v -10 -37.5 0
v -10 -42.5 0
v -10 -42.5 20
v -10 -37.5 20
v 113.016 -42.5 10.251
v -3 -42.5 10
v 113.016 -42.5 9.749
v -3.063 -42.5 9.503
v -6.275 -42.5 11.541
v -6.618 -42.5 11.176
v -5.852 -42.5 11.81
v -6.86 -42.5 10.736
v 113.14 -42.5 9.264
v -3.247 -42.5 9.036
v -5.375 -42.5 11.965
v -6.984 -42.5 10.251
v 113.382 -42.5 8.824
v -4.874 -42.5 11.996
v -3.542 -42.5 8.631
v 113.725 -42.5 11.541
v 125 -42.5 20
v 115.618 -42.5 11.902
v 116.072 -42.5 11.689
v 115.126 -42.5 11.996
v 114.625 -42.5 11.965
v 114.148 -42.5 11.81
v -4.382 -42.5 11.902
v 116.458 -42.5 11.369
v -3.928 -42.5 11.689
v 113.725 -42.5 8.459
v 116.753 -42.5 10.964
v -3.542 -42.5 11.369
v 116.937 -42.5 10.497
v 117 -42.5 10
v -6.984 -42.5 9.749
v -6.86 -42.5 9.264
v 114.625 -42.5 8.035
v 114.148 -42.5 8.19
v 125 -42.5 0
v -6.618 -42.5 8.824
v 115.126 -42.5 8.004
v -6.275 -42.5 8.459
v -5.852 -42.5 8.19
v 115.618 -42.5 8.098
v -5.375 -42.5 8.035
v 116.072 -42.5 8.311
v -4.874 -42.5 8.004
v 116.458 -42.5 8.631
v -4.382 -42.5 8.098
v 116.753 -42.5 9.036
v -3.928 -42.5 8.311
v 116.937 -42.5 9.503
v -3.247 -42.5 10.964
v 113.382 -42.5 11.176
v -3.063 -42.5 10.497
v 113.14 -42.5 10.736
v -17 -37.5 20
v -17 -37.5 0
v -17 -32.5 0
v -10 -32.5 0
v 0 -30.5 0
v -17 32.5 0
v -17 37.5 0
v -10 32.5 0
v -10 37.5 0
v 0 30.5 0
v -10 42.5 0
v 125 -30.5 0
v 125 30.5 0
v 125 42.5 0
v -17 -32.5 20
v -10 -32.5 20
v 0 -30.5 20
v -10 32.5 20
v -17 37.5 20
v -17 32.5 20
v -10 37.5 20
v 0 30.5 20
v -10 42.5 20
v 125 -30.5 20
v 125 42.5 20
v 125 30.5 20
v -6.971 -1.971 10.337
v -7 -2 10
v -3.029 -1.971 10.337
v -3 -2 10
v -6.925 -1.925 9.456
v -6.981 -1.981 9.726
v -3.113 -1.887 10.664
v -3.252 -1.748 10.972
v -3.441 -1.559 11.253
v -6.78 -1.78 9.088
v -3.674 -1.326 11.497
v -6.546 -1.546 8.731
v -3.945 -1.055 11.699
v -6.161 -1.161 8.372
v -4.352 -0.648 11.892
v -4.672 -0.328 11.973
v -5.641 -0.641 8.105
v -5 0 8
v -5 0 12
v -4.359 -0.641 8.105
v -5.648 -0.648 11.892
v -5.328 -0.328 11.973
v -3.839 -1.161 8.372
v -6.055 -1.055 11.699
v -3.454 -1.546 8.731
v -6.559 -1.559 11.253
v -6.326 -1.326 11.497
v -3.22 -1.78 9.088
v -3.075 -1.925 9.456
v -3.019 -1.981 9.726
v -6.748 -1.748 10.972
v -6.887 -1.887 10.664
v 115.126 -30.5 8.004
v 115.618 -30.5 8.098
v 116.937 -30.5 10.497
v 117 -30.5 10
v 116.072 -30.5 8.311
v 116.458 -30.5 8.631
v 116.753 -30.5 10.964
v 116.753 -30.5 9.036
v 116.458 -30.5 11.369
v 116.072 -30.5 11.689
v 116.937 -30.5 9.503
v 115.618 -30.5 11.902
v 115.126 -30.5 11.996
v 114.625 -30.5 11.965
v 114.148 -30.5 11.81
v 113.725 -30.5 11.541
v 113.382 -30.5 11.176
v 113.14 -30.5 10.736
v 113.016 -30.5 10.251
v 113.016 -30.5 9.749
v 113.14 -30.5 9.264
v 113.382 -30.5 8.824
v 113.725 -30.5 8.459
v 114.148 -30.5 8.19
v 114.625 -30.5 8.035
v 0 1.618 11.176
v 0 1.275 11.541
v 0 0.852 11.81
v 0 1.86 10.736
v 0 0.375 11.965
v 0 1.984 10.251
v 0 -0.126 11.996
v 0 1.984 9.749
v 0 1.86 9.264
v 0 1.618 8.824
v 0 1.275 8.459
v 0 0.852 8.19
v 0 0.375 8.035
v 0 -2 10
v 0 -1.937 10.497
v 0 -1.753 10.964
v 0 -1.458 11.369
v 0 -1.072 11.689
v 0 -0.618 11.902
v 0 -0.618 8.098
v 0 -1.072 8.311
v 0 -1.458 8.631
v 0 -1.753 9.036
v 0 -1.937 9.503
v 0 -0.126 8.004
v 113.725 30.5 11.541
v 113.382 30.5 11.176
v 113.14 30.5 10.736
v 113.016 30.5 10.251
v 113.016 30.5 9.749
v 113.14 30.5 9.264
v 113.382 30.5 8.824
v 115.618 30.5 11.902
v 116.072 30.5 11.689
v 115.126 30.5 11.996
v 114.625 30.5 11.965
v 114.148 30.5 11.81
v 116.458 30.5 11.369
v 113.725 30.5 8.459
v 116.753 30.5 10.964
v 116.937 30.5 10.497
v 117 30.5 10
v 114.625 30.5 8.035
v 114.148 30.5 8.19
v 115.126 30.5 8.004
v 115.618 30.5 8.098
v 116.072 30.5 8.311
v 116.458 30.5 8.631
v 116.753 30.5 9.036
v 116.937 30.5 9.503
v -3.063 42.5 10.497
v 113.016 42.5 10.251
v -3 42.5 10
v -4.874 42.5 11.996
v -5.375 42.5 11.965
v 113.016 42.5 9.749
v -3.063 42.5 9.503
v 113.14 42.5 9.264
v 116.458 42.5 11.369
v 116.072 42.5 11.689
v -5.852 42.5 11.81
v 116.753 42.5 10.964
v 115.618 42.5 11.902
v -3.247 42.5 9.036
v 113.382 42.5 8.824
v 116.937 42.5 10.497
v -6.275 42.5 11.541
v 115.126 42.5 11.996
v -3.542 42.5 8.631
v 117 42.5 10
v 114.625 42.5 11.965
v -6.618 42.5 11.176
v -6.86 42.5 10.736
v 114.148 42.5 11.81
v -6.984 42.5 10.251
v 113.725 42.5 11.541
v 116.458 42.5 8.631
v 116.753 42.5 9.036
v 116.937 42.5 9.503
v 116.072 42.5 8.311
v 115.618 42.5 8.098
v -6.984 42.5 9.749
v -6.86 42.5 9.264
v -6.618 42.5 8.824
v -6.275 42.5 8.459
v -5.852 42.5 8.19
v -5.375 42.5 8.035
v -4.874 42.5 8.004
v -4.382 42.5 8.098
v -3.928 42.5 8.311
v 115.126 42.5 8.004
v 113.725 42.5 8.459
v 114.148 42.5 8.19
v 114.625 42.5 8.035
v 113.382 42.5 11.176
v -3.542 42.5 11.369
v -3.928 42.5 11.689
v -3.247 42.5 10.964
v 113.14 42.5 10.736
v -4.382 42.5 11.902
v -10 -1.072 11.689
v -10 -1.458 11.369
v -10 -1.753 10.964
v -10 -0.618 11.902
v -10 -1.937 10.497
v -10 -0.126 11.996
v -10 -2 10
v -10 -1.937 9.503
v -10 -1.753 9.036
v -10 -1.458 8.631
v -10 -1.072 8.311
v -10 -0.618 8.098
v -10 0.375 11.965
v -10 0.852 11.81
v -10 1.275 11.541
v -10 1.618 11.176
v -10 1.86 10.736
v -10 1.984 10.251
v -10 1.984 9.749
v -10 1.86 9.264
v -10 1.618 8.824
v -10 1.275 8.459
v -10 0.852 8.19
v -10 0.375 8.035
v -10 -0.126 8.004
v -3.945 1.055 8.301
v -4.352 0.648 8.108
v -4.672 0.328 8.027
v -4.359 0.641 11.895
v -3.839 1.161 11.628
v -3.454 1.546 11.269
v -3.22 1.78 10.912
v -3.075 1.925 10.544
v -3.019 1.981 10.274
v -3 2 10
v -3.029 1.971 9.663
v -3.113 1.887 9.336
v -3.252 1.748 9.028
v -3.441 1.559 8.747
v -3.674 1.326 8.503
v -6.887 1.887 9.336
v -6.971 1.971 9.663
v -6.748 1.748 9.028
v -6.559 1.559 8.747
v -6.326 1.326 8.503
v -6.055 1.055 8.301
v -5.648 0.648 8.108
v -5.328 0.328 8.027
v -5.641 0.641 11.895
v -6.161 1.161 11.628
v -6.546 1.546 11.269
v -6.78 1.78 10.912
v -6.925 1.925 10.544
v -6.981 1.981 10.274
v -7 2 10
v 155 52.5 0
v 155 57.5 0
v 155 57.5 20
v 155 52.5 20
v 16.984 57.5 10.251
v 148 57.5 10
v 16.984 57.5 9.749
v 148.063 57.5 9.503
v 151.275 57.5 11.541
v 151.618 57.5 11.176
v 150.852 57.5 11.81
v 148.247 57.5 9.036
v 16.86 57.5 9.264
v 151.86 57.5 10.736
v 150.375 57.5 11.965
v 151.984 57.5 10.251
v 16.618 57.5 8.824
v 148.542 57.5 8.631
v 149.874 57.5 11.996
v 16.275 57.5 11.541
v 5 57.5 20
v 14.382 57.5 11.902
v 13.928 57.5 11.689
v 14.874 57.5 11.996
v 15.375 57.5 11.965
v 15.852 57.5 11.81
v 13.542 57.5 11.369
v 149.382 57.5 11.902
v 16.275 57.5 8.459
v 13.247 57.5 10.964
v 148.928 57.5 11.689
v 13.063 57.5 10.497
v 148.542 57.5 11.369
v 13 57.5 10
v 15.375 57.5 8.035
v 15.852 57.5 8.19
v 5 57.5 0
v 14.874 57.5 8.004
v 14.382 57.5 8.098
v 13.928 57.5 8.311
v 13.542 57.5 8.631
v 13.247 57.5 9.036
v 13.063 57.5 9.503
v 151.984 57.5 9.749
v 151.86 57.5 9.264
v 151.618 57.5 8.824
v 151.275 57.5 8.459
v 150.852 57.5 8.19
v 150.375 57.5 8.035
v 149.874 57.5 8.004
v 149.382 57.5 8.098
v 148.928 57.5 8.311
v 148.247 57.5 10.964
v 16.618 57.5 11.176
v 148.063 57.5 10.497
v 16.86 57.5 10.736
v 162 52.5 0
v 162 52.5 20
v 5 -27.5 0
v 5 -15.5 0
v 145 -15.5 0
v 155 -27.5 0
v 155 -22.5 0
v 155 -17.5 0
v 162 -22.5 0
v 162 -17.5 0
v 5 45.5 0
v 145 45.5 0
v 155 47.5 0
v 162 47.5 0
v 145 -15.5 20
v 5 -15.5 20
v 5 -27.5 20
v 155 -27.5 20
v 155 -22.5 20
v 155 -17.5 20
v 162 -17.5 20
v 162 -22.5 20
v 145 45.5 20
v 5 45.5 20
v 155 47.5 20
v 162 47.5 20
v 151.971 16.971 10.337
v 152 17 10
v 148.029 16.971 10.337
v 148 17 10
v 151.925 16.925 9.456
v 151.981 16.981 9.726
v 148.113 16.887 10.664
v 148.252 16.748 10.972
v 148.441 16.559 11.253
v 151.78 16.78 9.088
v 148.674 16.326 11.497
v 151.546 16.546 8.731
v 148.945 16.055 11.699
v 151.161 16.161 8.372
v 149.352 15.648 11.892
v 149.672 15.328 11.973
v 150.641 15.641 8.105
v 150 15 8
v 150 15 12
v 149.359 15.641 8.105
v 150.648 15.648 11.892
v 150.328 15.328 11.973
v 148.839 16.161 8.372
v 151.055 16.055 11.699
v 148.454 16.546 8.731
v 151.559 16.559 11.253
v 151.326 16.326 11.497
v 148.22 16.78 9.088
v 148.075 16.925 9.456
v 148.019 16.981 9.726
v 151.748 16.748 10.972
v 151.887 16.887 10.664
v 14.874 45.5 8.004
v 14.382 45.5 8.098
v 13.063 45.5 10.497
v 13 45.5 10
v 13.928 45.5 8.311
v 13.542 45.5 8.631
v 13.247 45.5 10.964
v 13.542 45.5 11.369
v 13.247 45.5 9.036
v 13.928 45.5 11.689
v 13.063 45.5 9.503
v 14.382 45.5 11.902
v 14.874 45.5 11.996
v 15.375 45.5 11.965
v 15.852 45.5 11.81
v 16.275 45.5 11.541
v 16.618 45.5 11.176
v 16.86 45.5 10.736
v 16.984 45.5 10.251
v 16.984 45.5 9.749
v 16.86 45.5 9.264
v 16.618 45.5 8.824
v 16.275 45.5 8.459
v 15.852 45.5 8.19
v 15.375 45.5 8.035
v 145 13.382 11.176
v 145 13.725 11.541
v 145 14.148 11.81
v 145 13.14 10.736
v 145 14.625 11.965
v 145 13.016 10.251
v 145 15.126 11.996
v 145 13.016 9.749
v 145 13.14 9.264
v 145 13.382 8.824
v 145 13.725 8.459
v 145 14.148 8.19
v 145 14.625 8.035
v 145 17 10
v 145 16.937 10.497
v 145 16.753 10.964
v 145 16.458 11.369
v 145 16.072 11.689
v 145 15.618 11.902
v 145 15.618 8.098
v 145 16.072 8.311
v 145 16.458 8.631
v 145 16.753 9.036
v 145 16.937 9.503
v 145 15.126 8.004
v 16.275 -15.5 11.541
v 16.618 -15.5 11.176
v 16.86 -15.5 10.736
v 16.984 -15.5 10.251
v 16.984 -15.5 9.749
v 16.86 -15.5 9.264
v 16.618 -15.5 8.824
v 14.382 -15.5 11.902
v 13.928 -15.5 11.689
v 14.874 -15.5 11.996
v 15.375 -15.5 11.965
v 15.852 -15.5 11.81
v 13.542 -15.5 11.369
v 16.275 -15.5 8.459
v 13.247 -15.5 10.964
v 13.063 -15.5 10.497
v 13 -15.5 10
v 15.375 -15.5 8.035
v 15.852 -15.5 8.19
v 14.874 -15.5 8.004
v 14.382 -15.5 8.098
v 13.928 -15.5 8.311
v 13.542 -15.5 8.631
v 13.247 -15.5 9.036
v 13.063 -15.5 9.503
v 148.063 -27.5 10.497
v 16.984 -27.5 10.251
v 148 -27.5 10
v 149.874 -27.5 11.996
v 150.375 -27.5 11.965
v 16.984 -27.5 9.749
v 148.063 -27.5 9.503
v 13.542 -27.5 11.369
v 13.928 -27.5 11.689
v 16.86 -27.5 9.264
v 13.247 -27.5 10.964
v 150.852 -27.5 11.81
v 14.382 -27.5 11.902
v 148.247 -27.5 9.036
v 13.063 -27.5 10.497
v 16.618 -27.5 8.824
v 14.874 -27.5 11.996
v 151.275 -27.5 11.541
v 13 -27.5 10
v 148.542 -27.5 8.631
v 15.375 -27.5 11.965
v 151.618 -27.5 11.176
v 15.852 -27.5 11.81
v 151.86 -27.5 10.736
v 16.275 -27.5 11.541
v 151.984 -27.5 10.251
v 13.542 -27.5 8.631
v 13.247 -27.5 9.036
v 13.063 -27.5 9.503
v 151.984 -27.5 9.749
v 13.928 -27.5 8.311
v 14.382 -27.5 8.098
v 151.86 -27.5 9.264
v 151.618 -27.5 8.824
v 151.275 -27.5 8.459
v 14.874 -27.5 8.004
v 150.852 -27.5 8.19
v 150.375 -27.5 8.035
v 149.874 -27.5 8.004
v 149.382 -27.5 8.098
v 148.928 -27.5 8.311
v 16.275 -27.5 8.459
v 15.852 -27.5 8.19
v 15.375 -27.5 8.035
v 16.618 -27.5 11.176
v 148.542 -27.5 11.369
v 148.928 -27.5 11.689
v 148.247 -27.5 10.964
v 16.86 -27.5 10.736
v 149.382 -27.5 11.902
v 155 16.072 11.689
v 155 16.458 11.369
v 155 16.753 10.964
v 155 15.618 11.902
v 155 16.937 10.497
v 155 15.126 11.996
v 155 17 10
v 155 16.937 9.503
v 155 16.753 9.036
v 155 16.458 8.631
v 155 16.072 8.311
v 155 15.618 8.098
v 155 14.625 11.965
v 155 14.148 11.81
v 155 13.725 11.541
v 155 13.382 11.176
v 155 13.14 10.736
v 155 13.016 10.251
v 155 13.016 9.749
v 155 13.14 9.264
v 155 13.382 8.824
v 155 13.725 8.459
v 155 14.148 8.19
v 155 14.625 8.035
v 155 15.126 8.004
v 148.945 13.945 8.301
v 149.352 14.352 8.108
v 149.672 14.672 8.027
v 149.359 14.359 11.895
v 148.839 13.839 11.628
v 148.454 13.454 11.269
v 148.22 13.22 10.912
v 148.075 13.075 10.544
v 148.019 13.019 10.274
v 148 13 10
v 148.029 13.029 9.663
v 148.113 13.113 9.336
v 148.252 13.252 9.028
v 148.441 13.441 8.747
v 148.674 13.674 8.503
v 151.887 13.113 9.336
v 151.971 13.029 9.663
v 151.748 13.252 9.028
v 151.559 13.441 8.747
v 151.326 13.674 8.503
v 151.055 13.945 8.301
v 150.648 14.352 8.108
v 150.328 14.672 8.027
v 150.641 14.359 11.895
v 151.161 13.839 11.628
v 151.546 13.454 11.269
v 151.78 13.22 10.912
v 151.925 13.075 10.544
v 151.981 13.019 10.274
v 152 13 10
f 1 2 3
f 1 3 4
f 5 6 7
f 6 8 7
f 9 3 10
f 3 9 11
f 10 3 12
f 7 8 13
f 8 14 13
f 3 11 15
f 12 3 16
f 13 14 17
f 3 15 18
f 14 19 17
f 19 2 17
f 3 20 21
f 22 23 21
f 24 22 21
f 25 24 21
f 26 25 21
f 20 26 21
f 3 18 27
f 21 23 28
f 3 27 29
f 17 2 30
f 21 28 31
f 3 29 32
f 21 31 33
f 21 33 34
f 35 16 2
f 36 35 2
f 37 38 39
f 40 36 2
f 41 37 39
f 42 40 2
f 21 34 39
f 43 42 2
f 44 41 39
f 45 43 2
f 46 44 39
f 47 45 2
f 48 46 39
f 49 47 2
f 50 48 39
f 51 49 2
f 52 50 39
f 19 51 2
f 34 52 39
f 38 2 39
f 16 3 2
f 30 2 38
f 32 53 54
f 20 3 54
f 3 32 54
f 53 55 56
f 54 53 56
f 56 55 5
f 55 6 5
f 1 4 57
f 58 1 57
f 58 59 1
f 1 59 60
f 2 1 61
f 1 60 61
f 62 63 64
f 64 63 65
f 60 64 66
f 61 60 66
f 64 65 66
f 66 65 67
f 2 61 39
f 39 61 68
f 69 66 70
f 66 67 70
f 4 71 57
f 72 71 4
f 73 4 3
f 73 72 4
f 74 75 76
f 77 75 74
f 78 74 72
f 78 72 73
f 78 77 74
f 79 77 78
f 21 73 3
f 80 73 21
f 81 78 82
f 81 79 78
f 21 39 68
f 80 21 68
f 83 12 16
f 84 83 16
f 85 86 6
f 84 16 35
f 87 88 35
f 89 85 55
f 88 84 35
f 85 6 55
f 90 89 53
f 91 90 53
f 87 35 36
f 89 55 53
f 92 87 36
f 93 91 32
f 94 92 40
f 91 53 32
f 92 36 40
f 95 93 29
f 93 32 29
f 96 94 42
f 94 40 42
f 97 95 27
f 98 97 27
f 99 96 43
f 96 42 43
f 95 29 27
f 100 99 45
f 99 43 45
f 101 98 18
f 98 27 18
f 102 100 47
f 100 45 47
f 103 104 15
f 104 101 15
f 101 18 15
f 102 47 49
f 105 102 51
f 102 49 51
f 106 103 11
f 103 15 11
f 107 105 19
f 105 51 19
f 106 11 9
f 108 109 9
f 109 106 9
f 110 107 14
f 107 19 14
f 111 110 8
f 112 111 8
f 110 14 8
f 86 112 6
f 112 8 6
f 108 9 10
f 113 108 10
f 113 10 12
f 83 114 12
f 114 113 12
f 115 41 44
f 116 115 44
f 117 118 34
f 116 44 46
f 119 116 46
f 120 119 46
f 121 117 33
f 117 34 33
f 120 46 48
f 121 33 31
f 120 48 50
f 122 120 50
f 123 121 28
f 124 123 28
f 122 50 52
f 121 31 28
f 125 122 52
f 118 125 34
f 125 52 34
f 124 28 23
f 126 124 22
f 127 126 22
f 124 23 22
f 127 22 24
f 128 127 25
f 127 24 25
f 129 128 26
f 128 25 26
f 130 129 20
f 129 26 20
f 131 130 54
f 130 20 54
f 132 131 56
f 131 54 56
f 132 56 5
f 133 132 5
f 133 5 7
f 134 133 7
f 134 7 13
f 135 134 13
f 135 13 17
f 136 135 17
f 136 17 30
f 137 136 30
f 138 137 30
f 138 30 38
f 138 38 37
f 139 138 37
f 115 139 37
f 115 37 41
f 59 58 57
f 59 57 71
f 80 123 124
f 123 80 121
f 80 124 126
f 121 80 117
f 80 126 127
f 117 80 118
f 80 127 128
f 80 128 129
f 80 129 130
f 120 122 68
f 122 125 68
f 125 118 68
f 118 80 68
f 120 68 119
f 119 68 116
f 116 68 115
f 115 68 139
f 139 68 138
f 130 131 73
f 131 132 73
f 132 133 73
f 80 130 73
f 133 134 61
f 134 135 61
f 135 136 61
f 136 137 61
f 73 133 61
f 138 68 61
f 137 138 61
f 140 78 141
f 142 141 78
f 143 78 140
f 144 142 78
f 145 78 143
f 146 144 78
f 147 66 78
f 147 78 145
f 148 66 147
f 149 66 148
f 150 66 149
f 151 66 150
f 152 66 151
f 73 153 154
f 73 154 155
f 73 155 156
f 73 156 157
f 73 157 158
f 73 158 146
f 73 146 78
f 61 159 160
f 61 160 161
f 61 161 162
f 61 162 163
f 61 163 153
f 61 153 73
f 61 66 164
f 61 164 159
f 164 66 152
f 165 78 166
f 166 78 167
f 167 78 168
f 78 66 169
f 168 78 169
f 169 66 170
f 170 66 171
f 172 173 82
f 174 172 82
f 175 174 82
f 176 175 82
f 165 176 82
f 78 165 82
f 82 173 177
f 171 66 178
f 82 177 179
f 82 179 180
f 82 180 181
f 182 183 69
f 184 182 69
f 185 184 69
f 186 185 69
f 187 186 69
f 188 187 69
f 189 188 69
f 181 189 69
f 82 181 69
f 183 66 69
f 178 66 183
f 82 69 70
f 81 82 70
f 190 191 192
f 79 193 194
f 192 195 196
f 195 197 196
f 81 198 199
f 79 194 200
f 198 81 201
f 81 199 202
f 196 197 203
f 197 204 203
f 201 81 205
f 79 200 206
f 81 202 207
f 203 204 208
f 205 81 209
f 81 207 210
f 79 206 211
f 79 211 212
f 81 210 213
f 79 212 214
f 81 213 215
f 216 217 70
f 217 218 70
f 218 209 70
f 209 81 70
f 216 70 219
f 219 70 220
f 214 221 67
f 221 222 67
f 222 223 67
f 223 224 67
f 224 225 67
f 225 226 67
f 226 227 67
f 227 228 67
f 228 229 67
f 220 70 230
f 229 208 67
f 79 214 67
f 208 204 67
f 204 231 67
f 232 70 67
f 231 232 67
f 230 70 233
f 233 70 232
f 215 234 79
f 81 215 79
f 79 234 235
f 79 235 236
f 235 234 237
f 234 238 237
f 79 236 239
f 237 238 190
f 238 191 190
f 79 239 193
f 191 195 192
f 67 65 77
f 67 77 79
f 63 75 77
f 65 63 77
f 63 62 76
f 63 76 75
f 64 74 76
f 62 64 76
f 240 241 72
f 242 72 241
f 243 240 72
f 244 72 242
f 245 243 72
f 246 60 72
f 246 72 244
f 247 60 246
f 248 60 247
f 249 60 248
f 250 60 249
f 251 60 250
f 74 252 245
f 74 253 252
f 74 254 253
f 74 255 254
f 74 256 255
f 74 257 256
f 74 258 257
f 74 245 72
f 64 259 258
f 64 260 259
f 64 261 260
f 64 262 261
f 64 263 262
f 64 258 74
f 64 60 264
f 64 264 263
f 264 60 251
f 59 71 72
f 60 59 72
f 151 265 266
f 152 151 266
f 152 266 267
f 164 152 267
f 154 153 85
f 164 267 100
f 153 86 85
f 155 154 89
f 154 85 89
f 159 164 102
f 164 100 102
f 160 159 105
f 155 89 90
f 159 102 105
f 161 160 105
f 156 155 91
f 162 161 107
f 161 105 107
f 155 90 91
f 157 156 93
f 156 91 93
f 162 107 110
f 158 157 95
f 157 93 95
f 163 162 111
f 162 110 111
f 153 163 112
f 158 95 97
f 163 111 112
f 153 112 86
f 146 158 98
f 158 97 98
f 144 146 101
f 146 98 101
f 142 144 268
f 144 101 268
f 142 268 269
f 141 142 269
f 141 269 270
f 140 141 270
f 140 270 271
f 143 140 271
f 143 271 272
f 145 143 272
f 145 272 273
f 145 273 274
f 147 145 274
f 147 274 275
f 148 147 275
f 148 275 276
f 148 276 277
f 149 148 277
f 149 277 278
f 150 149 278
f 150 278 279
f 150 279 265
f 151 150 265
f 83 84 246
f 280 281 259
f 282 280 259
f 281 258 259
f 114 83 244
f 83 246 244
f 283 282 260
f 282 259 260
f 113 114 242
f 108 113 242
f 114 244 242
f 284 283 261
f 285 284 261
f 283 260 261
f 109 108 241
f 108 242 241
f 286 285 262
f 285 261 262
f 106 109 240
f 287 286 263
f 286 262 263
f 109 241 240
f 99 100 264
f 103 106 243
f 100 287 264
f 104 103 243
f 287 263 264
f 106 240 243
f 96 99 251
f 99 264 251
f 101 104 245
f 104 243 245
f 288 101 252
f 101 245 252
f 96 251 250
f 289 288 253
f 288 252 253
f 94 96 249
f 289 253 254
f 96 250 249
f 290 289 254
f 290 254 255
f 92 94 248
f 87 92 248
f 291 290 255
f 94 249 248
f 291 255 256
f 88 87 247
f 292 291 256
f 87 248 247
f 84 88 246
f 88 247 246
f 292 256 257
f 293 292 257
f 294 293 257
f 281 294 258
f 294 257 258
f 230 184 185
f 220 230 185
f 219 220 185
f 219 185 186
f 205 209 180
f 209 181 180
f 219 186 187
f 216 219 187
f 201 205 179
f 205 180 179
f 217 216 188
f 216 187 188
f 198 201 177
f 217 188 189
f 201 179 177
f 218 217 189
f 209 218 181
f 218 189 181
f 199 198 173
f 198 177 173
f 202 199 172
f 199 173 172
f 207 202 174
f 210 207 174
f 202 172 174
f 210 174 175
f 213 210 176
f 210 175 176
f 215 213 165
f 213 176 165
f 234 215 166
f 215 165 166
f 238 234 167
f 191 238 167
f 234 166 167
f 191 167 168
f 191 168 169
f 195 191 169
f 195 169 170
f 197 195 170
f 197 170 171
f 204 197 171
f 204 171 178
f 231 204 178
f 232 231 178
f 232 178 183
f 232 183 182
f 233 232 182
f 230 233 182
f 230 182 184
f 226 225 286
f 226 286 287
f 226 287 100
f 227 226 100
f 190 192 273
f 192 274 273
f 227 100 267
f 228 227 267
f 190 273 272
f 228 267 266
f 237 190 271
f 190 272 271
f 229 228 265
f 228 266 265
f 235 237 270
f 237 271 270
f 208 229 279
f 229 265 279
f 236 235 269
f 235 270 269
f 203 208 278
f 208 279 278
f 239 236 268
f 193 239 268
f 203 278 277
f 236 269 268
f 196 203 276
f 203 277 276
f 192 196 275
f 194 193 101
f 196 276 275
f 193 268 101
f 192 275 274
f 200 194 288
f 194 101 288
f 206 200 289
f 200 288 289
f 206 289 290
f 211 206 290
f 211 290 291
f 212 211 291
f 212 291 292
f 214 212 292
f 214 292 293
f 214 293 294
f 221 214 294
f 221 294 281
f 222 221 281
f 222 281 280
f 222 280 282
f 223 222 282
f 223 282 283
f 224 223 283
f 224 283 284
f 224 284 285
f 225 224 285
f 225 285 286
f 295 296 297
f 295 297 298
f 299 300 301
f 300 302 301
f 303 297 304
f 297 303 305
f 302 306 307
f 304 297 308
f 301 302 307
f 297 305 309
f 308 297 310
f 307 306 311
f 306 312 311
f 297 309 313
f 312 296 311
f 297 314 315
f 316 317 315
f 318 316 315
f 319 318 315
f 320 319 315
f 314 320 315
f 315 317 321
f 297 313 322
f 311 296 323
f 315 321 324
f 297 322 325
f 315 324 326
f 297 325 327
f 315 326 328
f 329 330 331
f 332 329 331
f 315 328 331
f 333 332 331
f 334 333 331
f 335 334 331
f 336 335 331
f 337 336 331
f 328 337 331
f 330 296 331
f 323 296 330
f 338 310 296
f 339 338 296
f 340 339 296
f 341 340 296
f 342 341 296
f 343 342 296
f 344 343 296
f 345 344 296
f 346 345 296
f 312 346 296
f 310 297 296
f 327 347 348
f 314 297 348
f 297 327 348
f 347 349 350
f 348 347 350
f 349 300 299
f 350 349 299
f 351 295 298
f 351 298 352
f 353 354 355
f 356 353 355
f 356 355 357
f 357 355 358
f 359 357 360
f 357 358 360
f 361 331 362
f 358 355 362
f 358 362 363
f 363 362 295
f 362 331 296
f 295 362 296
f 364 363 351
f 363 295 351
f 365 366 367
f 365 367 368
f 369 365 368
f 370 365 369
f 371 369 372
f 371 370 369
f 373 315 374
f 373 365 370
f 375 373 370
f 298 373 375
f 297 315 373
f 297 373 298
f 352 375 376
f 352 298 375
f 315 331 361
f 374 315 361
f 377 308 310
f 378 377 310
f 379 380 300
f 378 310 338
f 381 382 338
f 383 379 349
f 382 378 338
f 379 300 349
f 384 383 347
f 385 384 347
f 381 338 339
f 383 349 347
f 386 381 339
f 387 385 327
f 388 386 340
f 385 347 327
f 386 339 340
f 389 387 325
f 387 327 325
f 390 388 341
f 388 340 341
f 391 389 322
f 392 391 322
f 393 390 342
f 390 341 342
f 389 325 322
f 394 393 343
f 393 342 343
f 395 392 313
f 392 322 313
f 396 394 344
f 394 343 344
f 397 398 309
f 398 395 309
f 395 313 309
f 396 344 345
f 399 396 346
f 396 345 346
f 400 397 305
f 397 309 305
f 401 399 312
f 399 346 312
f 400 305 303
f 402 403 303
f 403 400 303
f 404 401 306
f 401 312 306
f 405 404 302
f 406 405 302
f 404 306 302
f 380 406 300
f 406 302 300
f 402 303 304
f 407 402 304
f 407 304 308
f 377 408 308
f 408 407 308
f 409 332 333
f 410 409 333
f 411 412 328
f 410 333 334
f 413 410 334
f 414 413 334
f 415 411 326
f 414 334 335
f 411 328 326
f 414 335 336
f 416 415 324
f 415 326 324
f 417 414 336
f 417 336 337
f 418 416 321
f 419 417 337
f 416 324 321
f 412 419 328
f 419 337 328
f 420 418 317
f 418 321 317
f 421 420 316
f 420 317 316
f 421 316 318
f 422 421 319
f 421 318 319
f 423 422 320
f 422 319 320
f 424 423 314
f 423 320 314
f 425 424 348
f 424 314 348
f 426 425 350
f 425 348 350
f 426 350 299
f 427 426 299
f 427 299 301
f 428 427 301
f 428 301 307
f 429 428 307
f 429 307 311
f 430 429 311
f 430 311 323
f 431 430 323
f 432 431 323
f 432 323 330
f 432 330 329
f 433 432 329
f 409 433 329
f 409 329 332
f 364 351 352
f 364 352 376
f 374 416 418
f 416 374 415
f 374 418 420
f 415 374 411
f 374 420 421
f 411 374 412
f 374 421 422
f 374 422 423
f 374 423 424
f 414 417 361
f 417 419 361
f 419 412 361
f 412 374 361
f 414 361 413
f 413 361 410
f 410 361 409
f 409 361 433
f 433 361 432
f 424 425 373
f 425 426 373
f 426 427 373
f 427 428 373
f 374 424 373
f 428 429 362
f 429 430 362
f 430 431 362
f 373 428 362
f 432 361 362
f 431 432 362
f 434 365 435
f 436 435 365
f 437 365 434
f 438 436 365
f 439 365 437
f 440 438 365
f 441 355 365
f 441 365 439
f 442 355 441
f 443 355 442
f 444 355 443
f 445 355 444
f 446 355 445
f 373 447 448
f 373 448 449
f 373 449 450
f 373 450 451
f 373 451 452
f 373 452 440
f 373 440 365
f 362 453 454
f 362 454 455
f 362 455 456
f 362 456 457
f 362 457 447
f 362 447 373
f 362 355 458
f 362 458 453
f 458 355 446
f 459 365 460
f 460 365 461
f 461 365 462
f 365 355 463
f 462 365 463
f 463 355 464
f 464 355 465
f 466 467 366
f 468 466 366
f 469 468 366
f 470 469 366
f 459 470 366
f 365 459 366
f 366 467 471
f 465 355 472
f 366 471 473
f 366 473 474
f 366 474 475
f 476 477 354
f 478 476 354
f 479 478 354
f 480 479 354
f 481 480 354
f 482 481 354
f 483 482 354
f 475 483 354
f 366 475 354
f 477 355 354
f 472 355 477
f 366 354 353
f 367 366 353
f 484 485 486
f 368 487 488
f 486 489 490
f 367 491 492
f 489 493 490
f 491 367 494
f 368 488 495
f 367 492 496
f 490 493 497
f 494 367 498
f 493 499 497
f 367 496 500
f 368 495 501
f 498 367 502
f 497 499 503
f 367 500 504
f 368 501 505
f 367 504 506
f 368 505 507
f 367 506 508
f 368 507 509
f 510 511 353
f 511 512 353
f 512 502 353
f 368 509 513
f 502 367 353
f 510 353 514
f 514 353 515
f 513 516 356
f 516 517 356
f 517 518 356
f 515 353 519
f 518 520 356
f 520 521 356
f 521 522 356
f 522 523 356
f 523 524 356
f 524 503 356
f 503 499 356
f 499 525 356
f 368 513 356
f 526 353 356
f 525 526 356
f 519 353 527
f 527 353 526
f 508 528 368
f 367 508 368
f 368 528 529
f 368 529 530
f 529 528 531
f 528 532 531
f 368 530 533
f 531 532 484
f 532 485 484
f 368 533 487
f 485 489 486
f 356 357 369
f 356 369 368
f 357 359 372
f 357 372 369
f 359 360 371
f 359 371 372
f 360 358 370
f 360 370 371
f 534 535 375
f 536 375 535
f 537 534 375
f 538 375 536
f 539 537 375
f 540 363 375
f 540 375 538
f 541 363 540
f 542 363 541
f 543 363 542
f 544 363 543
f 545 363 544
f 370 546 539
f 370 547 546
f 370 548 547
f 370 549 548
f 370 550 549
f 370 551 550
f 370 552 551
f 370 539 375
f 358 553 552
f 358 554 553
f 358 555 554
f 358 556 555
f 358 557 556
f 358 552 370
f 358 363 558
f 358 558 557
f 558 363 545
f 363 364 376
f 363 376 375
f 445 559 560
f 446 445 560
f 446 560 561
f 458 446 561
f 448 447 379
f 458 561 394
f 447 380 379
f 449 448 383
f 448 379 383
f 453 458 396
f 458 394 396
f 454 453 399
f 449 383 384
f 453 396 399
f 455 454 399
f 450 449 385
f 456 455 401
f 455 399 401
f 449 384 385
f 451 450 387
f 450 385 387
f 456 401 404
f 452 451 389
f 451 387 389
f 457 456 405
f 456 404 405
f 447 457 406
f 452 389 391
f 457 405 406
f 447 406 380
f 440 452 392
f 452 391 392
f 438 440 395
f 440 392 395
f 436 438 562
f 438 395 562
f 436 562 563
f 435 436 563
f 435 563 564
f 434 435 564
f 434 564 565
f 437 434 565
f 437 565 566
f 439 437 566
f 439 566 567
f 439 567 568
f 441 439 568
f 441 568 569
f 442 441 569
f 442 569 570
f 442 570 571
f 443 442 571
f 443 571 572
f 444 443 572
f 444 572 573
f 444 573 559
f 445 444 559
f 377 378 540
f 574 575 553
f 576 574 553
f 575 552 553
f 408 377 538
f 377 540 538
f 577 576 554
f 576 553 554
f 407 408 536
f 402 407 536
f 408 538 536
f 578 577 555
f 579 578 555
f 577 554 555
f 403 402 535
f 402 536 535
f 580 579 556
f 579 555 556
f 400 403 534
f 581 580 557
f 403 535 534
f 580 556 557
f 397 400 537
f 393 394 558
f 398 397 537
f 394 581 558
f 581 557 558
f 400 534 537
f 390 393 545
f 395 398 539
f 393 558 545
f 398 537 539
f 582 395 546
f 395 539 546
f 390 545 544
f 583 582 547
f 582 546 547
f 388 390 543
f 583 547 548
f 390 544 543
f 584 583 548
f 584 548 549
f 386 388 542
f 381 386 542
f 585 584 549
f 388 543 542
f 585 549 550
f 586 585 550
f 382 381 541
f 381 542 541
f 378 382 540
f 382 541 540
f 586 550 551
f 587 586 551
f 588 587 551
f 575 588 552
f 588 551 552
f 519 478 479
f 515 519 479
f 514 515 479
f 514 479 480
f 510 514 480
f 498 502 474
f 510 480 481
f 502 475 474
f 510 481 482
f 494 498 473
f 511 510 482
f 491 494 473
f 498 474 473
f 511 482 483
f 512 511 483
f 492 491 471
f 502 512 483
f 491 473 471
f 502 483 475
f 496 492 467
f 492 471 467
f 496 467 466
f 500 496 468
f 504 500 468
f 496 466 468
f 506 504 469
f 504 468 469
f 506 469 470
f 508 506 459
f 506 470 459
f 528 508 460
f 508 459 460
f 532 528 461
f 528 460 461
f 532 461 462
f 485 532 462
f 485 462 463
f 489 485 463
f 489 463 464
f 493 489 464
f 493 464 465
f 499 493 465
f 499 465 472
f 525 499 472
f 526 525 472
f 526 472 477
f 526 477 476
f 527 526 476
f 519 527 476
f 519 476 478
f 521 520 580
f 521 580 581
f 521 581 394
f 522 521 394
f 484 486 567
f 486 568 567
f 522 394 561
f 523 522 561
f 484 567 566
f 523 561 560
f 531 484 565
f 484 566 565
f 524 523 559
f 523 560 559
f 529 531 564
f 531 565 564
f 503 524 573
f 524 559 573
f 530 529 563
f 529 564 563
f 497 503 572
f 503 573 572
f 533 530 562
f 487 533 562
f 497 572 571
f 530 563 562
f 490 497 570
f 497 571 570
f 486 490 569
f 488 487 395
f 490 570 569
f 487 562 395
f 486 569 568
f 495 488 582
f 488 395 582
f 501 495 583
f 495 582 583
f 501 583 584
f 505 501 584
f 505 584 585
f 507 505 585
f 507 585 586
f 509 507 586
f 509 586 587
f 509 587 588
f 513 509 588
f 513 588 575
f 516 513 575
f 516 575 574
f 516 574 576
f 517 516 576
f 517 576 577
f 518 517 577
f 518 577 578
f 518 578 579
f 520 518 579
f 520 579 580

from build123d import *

# Parameters (mm, degrees)
PAD_DEPTH       = 20
SKETCH004_R     = 2
POCKET002_DEPTH = 135.001
SKETCH005_R     = 2
POCKET003_DEPTH = 85.001
PAD001_DEPTH    = 20
SKETCH007_R     = 2
POCKET004_DEPTH = 150.001
SKETCH008_R     = 2
POCKET005_DEPTH = 85.001


with BuildPart() as soporte_agujero_superior_lateral:
    # Sketch → Pad (new body)
    with BuildSketch(Plane.XY):
        Polygon((-10, -42.5), (125, -42.5), (125, -30.5), (0, -30.5), (0, 30.5), (125, 30.5), (125, 42.5), (-10, 42.5), (-10, 37.5), (-17, 37.5), (-17, 32.5), (-10, 32.5), (-10, -32.5), (-17, -32.5), (-17, -37.5), (-10, -37.5), align=None)
    extrude(amount=PAD_DEPTH)

    # Sketch004 → Pocket002 (cut, through all)
    with BuildSketch(Plane(origin=(-10, 0, 0), x_dir=(0, -1, 0), z_dir=(-1, 0, 0))):
        with Locations((0, 10)):
            Circle(SKETCH004_R)
    extrude(amount=-POCKET002_DEPTH, mode=Mode.SUBTRACT)

    # Sketch005 → Pocket003 (cut, through all)
    with BuildSketch(Plane.XZ.offset(42.5)):
        with Locations((-5, 10)):
            Circle(SKETCH005_R)
        with Locations((115, 10)):
            Circle(SKETCH005_R)
    extrude(amount=-POCKET003_DEPTH, mode=Mode.SUBTRACT)


with BuildPart() as soporte_agujero_superior_lateral001:
    # Sketch006 → Pad001 (new body)
    with BuildSketch(Plane(origin=(145, 15, 0), x_dir=(-1, 0, 0), z_dir=(0, 0, 1))):
        Polygon((-10, -42.5), (140, -42.5), (140, -30.5), (0, -30.5), (0, 30.5), (140, 30.5), (140, 42.5), (-10, 42.5), (-10, 37.5), (-17, 37.5), (-17, 32.5), (-10, 32.5), (-10, -32.5), (-17, -32.5), (-17, -37.5), (-10, -37.5), align=None)
    extrude(amount=PAD001_DEPTH)

    # Sketch007 → Pocket004 (cut, through all)
    with BuildSketch(Plane(origin=(155, 15, 0), x_dir=(0, 1, 0), z_dir=(1, 0, 0))):
        with Locations((0, 10)):
            Circle(SKETCH007_R)
    extrude(amount=-POCKET004_DEPTH, mode=Mode.SUBTRACT)

    # Sketch008 → Pocket005 (cut, through all)
    with BuildSketch(Plane(origin=(145, 57.5, 0), x_dir=(-1, 0, 0), z_dir=(0, 1, 0))):
        with Locations((-5, 10)):
            Circle(SKETCH008_R)
        with Locations((130, 10)):
            Circle(SKETCH008_R)
    extrude(amount=-POCKET005_DEPTH, mode=Mode.SUBTRACT)


solid = Compound([soporte_agujero_superior_lateral.part, soporte_agujero_superior_lateral001.part])
